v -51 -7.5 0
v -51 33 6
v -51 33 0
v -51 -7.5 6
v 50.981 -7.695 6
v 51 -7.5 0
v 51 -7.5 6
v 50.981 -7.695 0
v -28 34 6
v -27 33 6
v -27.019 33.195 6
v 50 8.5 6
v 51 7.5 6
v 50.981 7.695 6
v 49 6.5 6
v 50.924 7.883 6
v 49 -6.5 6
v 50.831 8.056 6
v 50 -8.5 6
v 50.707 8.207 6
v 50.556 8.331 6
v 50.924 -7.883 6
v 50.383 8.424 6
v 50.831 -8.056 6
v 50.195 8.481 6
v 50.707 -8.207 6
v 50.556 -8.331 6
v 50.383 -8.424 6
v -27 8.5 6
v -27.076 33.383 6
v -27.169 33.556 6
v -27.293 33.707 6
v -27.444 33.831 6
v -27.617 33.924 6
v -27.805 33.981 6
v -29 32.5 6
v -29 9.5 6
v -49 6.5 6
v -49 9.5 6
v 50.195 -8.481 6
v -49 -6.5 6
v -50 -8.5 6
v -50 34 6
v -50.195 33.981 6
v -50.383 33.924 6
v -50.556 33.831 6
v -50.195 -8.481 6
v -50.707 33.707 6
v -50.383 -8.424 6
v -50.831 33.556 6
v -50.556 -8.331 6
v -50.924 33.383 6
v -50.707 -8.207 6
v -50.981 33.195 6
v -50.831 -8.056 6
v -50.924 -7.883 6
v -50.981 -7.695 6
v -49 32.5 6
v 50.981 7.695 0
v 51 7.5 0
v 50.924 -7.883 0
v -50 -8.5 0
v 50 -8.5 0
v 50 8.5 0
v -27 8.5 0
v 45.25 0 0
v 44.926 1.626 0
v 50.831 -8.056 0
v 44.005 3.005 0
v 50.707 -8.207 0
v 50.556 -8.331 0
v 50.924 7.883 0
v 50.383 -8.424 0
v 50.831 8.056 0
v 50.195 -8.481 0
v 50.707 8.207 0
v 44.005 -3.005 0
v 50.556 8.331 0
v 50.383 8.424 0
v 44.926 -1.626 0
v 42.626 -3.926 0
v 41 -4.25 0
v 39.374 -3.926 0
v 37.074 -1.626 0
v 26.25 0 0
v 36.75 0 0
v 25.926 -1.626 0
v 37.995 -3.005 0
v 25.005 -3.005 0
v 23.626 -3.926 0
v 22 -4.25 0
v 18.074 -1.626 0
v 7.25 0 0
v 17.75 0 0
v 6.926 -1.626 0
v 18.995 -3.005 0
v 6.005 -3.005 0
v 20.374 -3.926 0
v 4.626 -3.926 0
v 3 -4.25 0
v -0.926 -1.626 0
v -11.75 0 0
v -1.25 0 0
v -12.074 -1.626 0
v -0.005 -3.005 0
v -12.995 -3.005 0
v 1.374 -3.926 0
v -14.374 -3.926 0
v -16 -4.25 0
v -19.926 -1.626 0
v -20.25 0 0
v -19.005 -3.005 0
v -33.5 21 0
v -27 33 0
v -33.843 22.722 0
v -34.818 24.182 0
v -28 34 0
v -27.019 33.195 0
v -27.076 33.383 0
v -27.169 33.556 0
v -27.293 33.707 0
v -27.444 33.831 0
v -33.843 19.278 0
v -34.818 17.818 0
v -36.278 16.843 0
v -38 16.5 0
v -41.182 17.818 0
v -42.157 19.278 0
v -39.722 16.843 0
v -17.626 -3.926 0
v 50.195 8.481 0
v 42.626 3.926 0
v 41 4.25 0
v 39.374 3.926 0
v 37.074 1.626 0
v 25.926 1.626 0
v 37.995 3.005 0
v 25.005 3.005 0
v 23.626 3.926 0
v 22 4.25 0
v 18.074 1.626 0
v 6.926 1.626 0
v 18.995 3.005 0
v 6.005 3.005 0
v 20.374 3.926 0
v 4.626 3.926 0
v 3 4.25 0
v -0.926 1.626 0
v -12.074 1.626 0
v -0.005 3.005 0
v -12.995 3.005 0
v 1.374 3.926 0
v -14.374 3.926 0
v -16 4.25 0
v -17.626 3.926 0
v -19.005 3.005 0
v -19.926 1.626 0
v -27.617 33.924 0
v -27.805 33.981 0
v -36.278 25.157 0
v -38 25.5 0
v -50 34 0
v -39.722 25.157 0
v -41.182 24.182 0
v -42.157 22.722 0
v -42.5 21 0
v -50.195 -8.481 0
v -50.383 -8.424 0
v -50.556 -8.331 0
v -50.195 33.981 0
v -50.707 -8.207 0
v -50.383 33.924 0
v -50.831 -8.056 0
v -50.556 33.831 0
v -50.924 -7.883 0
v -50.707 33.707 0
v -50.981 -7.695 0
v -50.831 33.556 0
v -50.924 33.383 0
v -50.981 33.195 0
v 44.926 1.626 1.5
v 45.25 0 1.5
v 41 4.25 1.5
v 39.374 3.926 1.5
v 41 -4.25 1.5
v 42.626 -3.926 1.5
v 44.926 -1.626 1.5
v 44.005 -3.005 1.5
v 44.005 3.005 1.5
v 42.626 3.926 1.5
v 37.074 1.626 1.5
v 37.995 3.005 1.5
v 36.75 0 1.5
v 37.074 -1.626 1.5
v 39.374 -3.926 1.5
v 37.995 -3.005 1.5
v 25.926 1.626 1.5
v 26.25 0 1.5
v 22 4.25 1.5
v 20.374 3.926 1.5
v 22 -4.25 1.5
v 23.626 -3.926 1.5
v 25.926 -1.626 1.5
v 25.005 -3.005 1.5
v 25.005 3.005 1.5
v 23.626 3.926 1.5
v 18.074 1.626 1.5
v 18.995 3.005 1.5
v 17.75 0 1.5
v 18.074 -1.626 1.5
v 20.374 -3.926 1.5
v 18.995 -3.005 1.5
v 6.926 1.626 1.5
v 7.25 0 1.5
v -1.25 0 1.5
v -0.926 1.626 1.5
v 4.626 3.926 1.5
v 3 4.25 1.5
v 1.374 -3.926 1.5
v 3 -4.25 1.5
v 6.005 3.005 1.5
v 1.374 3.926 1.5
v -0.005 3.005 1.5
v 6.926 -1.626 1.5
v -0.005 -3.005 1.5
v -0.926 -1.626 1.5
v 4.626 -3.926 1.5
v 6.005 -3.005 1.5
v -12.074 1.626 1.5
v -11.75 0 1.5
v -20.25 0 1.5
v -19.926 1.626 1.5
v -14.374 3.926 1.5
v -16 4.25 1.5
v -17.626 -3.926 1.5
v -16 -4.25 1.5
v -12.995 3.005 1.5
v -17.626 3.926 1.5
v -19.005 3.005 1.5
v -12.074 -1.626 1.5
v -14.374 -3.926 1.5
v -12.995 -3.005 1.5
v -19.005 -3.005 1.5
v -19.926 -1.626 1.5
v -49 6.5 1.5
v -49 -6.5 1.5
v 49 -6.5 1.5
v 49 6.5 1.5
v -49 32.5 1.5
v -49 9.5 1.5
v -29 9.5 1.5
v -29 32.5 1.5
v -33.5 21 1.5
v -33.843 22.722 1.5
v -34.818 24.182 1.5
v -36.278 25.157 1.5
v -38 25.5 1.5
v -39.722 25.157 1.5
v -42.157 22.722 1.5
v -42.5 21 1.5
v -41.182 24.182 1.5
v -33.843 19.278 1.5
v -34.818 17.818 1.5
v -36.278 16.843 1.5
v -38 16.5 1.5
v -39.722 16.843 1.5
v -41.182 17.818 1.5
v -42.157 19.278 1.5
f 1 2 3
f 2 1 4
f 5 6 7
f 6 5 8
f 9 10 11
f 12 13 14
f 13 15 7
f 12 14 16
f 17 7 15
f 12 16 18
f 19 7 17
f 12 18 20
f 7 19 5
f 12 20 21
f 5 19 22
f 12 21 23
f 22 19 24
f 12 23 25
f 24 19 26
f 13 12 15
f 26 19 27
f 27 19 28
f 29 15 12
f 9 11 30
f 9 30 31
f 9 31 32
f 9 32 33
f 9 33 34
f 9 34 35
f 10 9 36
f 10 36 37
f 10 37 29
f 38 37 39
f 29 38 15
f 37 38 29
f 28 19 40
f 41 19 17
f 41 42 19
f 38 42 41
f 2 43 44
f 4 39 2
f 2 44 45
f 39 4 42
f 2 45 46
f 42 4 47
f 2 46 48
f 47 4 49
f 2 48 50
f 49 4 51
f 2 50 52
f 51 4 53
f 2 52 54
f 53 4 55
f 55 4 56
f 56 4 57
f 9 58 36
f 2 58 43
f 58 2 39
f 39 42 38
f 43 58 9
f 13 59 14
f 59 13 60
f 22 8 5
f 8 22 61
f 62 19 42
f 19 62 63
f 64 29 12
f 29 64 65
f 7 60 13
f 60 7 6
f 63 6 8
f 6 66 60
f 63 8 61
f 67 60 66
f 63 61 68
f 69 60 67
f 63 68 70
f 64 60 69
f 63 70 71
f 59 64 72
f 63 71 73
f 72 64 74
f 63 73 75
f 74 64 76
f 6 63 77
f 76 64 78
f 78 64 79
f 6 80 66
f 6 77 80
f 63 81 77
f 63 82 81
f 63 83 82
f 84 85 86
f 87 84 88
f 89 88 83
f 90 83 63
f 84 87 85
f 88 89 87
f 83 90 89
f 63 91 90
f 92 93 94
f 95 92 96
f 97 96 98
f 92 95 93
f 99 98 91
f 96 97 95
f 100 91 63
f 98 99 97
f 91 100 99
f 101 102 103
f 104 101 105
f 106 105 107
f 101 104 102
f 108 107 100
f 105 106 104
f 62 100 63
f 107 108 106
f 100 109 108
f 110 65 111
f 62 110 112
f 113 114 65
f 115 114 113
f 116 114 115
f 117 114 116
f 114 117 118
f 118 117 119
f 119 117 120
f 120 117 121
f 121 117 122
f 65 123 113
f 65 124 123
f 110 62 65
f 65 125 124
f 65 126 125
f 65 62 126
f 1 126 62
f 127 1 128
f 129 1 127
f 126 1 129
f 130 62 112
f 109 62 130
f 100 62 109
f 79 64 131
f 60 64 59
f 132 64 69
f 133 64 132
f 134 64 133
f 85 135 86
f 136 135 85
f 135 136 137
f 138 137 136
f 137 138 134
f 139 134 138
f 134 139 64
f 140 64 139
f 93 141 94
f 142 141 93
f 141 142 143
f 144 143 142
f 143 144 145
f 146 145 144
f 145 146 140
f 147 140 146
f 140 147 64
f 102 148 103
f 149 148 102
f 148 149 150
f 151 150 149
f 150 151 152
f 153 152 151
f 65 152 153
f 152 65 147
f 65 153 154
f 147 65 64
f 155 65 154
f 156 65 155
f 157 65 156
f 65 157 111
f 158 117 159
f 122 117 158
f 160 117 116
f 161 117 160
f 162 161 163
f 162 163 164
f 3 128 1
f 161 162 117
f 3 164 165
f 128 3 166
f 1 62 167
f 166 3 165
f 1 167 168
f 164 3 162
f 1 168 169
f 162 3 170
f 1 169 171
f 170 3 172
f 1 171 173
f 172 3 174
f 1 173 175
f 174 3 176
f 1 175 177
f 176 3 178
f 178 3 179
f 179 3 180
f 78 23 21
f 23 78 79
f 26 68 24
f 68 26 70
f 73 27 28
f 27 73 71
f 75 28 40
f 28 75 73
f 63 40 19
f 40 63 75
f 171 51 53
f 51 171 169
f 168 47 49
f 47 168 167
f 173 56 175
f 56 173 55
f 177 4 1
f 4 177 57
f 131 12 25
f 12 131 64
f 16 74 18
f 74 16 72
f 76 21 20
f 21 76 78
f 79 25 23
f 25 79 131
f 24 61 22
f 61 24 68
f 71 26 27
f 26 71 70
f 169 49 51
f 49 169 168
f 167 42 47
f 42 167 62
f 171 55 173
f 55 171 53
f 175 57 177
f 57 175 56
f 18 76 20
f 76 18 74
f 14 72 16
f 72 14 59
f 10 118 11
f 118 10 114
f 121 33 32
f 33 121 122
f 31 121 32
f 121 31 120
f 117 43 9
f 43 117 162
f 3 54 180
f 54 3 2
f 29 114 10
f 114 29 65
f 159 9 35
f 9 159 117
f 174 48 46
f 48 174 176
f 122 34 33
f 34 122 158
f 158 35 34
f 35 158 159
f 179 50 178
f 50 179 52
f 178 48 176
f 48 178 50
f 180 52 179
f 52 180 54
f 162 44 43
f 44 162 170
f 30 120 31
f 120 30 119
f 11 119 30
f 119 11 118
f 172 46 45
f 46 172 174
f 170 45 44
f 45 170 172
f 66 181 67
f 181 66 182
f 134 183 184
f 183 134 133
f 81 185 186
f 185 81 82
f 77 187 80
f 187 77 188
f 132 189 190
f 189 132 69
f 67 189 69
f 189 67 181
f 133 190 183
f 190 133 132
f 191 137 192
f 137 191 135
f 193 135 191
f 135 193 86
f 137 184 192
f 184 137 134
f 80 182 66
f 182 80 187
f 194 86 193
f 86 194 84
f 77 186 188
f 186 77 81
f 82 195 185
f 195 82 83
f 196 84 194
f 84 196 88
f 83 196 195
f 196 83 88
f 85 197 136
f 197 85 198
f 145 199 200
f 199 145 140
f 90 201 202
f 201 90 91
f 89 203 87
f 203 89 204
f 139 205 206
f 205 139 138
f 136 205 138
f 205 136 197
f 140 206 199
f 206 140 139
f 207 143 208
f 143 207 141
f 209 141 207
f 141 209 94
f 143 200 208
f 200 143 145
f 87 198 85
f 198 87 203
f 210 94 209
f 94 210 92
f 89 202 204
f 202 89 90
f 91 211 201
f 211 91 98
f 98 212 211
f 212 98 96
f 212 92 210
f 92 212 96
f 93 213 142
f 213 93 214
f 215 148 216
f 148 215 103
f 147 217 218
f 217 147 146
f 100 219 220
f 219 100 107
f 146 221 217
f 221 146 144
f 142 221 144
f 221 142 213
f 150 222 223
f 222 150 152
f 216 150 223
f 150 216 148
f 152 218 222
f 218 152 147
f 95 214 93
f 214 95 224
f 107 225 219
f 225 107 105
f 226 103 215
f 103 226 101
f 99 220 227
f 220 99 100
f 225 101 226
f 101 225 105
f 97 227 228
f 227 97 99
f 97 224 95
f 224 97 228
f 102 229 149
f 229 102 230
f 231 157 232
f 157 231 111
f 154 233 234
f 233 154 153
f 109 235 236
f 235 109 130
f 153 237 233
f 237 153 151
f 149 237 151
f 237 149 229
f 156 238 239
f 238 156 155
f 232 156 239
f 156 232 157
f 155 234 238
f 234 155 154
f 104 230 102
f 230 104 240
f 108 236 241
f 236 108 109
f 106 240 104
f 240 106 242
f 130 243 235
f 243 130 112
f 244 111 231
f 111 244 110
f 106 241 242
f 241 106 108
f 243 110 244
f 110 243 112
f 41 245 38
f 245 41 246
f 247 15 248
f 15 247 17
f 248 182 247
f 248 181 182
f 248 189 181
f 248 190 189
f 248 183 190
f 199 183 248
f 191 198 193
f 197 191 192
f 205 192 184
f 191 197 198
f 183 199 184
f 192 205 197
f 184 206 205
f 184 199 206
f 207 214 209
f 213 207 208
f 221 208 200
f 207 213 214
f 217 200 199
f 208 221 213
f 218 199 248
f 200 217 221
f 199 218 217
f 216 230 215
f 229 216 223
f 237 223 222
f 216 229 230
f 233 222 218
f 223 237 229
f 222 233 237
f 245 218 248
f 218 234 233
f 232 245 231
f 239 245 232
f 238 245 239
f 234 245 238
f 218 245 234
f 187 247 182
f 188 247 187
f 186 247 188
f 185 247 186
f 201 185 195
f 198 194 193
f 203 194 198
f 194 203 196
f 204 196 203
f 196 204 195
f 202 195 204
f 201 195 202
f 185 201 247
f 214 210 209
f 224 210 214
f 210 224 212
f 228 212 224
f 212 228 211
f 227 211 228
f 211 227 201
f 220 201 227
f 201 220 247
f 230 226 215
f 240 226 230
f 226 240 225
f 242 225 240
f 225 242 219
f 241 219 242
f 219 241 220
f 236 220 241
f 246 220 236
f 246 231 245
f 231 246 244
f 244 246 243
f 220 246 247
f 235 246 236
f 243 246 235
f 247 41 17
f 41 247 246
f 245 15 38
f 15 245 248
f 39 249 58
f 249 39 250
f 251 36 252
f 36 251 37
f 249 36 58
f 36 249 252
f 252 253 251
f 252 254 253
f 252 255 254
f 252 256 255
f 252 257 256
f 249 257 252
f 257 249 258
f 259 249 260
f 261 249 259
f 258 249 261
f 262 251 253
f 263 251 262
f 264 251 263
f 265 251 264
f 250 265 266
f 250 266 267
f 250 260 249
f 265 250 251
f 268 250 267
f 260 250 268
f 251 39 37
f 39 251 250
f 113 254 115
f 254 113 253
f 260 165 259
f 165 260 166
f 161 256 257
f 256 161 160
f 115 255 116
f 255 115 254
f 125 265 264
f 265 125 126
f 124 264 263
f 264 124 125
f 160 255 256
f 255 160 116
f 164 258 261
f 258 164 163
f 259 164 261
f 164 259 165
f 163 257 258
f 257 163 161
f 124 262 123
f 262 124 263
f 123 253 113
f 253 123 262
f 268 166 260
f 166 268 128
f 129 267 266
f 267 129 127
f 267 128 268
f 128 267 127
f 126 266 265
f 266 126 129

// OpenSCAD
// RP2040 PCB parameters
pcb_length = 105;          // RP2040 PCB length (mm)
pcb_width = 60;            // RP2040 PCB width (mm)
pcb_thickness = 1.6;       // Standard PCB thickness (mm)
pcb_clearance = 1;         // Space around PCB (mm)
pcb_height_clearance = 8;  // Space above PCB for components (mm)

// Overall cover dimensions addinh Quad Encoder
qencoder_width = 25;      // Width of Quad Encoder (mm)
cover_length = 105 - 1;   // Total length of cover (mm)  
cover_width = 60 + qencoder_width;         // Total width of cover (mm)
cover_thickness = 2;       // Thickness of top plate (mm)
corner_radius = 1;         // Rounded corner radius (mm)

// Key switch parameters (Cherry MX compatible)
key_switch_size = 14;      // Square hole size for key switches (mm)
key_switch_spacing = 19.05; // Center-to-center spacing (0.75" standard)
key_rows = 4;              // Number of rows
key_cols = 3;              // Number of columns

// Key switch grid positioning (relative to cover center)
keys_offset_x = 0;         // X offset of key grid center
keys_offset_y = -13;     // Y offset of key grid center (negative = toward bottom)

// LCD/OLED display parameters
lcd_width = 31;            // Width of LCD cutout (mm)
lcd_height = 17;           // Height of LCD cutout (mm)
lcd_corner_radius = 1;     // Corner radius for LCD hole
//lcd_offset_x = -11;        // X position relative to center
lcd_offset_x = 11;        // X position relative to center
lcd_offset_y = 41;         // Y position relative to center (positive = toward top)

// Cover base Encoder hole
encoder_hole_size = 13;         // Square hole size for encoder + 1 mm space(mm)
encoder_hole_offset_x = -18.5;   // Hole X position relative to center
encoder_hole_offset_y = 38.5;   // Hole Y position relative to center
encoder_hole_z = 5;             // Hole encoder shaft height

// Rotary encoder parameters and relative to shaft center
encoder_shaft_diameter = 6;
encoder_size = 13;         // Square hole size for encoder + 1 mm space(mm)
//encoder_offset_x = 18.5 ;   // X position relative to center
encoder_offset_x = -48.5 - qencoder_width / 2;   // X position relative to center
encoder_offset_y = 38.5;   // Y position relative to center
encoder_shaft_z = 7;      // Encoder shaft height
encoder_shaft_clearance = 2; // General clearance for 3D printing (mm)

shaft_wall_width= 2;       // 
shaft_corner_radius = 1;   // Corner radius for encoder hole

// Mounting and clearance
wall_thickness = 2;        // Wall thickness for sides (if adding later)
clearance = 0.2;           // General clearance for 3D printing (mm)

// =============================================================================
// MAIN OBJECT
// =============================================================================

difference() {
            
    // Wrap the open encoder shaft
    union() {
        quad_encoder_wrap();                        

        main_encoder_wrap();                        
    }

    // Substract the inside holes
    quad_encoder_hole();                       

    main_encoder_hole();                       

    // Cut out encoder shaft holes
    quad_encoder_round_holes();    

    main_encoder_round_hole();    
}

wall_width = 2;

// Quad Encoder
quad_encoder_z = 4;

quad_encoder_offset_x = 0;
quad_encoder_offset_y = 0;

quad_encoder_size_x = 98/2 + wall_width;
quad_encoder_size_y = 13/2 + wall_width;

quad_encoder_hole_x = 98;
quad_encoder_hole_y = 13;

// Main encoder
main_encoder_offset_x = -39;
main_encoder_offset_y = 20;

main_encoder_size_y = 24/2 + wall_width;
main_encoder_size_x = 20/2 + wall_width;

main_encoder_hole_y = 23;
main_encoder_hole_x = 20;

encoder_z = quad_encoder_z - shaft_wall_width;  // 2mm Shaft top cover

// Seperated: Create rotary encoder hole through cover base and shaft cibe
module quad_encoder_wrap() {
    
    translate([quad_encoder_offset_x, quad_encoder_offset_y, 0]) {
        // Square hole with slightly rounded corners for encoder
        hull() {
            // Four corner cylinders for rounded square
            translate([+(quad_encoder_size_x - shaft_corner_radius), -(quad_encoder_size_y - shaft_corner_radius), 0])
                cylinder(h = cover_thickness + quad_encoder_z, r = shaft_corner_radius, $fn = 32);
            
            translate([-(quad_encoder_size_x - shaft_corner_radius), -(quad_encoder_size_y - shaft_corner_radius), 0])
                cylinder(h = cover_thickness + quad_encoder_z, r = shaft_corner_radius, $fn = 32);
            
            translate([+(quad_encoder_size_x - shaft_corner_radius), (quad_encoder_size_y - shaft_corner_radius), 0])
                cylinder(h = cover_thickness + quad_encoder_z, r = shaft_corner_radius, $fn = 32);
            
            translate([-(quad_encoder_size_x - shaft_corner_radius), (quad_encoder_size_y - shaft_corner_radius), 0])
                cylinder(h = cover_thickness + quad_encoder_z, r = shaft_corner_radius, $fn = 32);
        }
    }
}

// Quad encoder hole in cover base
module quad_encoder_hole() {
    
    color("blue") translate([quad_encoder_offset_x, quad_encoder_offset_y, 5]) {
        // Square hole with slightly rounded corners for encoder
        cube([quad_encoder_hole_x, quad_encoder_hole_y, 7], center = true);
    }    
}

// Seperated: Create rotary encoder hole through cover base and shaft cibe
module main_encoder_wrap() {
    
    translate([main_encoder_offset_x, main_encoder_offset_y, 0]) {
        // Square hole with slightly rounded corners for encoder
        hull() {
            // Four corner cylinders for rounded square
            translate([+(main_encoder_size_x - shaft_corner_radius), -(main_encoder_size_y - shaft_corner_radius), 0])
                cylinder(h = cover_thickness + quad_encoder_z, r = shaft_corner_radius, $fn = 32);
            
            translate([-(main_encoder_size_x - shaft_corner_radius), -(main_encoder_size_y - shaft_corner_radius), 0])
                cylinder(h = cover_thickness + quad_encoder_z, r = shaft_corner_radius, $fn = 32);
            
            translate([+(main_encoder_size_x - shaft_corner_radius), (main_encoder_size_y - shaft_corner_radius), 0])
                cylinder(h = cover_thickness + quad_encoder_z, r = shaft_corner_radius, $fn = 32);
            
            translate([-(main_encoder_size_x - shaft_corner_radius), (main_encoder_size_y - shaft_corner_radius), 0])
                cylinder(h = cover_thickness + quad_encoder_z, r = shaft_corner_radius, $fn = 32);
        }
    }
}

// Main encoder hole in cover base
module main_encoder_hole() {
    
    color("blue") translate([main_encoder_offset_x, main_encoder_offset_y + 1, 5]) {
        // Square hole with slightly rounded corners for encoder
        cube([main_encoder_hole_x, main_encoder_hole_y, 7], center = true);
    }    
}

// Seperated: Create Encoder 6mm Shaft through hole
module quad_encoder_round_holes() {

    encoder_count = 4;
    x_offset_start = 30 + 11;
    x_offset_incr = 19;
    
    for (row = [0 : encoder_count - 1]) {

        color("red") translate([x_offset_start - x_offset_incr * row, 0, -0.5]) {
            // Through hole for encoder shaft
            cylinder(
                h = encoder_shaft_z + 2, 
                d = encoder_shaft_diameter + 2.5, 
                $fn = 16
            );        
        }
        
    }
}

// Seperated: Create Encoder 6mm Shaft through hole
module main_encoder_round_hole() {
    
    color("red") translate([-38, 21, -0.5]) {
            // Through hole for encoder shaft
            cylinder(
                h = encoder_shaft_z + 2, 
                d = encoder_shaft_diameter + 3, 
                $fn = 16
            );        
        }        
}
